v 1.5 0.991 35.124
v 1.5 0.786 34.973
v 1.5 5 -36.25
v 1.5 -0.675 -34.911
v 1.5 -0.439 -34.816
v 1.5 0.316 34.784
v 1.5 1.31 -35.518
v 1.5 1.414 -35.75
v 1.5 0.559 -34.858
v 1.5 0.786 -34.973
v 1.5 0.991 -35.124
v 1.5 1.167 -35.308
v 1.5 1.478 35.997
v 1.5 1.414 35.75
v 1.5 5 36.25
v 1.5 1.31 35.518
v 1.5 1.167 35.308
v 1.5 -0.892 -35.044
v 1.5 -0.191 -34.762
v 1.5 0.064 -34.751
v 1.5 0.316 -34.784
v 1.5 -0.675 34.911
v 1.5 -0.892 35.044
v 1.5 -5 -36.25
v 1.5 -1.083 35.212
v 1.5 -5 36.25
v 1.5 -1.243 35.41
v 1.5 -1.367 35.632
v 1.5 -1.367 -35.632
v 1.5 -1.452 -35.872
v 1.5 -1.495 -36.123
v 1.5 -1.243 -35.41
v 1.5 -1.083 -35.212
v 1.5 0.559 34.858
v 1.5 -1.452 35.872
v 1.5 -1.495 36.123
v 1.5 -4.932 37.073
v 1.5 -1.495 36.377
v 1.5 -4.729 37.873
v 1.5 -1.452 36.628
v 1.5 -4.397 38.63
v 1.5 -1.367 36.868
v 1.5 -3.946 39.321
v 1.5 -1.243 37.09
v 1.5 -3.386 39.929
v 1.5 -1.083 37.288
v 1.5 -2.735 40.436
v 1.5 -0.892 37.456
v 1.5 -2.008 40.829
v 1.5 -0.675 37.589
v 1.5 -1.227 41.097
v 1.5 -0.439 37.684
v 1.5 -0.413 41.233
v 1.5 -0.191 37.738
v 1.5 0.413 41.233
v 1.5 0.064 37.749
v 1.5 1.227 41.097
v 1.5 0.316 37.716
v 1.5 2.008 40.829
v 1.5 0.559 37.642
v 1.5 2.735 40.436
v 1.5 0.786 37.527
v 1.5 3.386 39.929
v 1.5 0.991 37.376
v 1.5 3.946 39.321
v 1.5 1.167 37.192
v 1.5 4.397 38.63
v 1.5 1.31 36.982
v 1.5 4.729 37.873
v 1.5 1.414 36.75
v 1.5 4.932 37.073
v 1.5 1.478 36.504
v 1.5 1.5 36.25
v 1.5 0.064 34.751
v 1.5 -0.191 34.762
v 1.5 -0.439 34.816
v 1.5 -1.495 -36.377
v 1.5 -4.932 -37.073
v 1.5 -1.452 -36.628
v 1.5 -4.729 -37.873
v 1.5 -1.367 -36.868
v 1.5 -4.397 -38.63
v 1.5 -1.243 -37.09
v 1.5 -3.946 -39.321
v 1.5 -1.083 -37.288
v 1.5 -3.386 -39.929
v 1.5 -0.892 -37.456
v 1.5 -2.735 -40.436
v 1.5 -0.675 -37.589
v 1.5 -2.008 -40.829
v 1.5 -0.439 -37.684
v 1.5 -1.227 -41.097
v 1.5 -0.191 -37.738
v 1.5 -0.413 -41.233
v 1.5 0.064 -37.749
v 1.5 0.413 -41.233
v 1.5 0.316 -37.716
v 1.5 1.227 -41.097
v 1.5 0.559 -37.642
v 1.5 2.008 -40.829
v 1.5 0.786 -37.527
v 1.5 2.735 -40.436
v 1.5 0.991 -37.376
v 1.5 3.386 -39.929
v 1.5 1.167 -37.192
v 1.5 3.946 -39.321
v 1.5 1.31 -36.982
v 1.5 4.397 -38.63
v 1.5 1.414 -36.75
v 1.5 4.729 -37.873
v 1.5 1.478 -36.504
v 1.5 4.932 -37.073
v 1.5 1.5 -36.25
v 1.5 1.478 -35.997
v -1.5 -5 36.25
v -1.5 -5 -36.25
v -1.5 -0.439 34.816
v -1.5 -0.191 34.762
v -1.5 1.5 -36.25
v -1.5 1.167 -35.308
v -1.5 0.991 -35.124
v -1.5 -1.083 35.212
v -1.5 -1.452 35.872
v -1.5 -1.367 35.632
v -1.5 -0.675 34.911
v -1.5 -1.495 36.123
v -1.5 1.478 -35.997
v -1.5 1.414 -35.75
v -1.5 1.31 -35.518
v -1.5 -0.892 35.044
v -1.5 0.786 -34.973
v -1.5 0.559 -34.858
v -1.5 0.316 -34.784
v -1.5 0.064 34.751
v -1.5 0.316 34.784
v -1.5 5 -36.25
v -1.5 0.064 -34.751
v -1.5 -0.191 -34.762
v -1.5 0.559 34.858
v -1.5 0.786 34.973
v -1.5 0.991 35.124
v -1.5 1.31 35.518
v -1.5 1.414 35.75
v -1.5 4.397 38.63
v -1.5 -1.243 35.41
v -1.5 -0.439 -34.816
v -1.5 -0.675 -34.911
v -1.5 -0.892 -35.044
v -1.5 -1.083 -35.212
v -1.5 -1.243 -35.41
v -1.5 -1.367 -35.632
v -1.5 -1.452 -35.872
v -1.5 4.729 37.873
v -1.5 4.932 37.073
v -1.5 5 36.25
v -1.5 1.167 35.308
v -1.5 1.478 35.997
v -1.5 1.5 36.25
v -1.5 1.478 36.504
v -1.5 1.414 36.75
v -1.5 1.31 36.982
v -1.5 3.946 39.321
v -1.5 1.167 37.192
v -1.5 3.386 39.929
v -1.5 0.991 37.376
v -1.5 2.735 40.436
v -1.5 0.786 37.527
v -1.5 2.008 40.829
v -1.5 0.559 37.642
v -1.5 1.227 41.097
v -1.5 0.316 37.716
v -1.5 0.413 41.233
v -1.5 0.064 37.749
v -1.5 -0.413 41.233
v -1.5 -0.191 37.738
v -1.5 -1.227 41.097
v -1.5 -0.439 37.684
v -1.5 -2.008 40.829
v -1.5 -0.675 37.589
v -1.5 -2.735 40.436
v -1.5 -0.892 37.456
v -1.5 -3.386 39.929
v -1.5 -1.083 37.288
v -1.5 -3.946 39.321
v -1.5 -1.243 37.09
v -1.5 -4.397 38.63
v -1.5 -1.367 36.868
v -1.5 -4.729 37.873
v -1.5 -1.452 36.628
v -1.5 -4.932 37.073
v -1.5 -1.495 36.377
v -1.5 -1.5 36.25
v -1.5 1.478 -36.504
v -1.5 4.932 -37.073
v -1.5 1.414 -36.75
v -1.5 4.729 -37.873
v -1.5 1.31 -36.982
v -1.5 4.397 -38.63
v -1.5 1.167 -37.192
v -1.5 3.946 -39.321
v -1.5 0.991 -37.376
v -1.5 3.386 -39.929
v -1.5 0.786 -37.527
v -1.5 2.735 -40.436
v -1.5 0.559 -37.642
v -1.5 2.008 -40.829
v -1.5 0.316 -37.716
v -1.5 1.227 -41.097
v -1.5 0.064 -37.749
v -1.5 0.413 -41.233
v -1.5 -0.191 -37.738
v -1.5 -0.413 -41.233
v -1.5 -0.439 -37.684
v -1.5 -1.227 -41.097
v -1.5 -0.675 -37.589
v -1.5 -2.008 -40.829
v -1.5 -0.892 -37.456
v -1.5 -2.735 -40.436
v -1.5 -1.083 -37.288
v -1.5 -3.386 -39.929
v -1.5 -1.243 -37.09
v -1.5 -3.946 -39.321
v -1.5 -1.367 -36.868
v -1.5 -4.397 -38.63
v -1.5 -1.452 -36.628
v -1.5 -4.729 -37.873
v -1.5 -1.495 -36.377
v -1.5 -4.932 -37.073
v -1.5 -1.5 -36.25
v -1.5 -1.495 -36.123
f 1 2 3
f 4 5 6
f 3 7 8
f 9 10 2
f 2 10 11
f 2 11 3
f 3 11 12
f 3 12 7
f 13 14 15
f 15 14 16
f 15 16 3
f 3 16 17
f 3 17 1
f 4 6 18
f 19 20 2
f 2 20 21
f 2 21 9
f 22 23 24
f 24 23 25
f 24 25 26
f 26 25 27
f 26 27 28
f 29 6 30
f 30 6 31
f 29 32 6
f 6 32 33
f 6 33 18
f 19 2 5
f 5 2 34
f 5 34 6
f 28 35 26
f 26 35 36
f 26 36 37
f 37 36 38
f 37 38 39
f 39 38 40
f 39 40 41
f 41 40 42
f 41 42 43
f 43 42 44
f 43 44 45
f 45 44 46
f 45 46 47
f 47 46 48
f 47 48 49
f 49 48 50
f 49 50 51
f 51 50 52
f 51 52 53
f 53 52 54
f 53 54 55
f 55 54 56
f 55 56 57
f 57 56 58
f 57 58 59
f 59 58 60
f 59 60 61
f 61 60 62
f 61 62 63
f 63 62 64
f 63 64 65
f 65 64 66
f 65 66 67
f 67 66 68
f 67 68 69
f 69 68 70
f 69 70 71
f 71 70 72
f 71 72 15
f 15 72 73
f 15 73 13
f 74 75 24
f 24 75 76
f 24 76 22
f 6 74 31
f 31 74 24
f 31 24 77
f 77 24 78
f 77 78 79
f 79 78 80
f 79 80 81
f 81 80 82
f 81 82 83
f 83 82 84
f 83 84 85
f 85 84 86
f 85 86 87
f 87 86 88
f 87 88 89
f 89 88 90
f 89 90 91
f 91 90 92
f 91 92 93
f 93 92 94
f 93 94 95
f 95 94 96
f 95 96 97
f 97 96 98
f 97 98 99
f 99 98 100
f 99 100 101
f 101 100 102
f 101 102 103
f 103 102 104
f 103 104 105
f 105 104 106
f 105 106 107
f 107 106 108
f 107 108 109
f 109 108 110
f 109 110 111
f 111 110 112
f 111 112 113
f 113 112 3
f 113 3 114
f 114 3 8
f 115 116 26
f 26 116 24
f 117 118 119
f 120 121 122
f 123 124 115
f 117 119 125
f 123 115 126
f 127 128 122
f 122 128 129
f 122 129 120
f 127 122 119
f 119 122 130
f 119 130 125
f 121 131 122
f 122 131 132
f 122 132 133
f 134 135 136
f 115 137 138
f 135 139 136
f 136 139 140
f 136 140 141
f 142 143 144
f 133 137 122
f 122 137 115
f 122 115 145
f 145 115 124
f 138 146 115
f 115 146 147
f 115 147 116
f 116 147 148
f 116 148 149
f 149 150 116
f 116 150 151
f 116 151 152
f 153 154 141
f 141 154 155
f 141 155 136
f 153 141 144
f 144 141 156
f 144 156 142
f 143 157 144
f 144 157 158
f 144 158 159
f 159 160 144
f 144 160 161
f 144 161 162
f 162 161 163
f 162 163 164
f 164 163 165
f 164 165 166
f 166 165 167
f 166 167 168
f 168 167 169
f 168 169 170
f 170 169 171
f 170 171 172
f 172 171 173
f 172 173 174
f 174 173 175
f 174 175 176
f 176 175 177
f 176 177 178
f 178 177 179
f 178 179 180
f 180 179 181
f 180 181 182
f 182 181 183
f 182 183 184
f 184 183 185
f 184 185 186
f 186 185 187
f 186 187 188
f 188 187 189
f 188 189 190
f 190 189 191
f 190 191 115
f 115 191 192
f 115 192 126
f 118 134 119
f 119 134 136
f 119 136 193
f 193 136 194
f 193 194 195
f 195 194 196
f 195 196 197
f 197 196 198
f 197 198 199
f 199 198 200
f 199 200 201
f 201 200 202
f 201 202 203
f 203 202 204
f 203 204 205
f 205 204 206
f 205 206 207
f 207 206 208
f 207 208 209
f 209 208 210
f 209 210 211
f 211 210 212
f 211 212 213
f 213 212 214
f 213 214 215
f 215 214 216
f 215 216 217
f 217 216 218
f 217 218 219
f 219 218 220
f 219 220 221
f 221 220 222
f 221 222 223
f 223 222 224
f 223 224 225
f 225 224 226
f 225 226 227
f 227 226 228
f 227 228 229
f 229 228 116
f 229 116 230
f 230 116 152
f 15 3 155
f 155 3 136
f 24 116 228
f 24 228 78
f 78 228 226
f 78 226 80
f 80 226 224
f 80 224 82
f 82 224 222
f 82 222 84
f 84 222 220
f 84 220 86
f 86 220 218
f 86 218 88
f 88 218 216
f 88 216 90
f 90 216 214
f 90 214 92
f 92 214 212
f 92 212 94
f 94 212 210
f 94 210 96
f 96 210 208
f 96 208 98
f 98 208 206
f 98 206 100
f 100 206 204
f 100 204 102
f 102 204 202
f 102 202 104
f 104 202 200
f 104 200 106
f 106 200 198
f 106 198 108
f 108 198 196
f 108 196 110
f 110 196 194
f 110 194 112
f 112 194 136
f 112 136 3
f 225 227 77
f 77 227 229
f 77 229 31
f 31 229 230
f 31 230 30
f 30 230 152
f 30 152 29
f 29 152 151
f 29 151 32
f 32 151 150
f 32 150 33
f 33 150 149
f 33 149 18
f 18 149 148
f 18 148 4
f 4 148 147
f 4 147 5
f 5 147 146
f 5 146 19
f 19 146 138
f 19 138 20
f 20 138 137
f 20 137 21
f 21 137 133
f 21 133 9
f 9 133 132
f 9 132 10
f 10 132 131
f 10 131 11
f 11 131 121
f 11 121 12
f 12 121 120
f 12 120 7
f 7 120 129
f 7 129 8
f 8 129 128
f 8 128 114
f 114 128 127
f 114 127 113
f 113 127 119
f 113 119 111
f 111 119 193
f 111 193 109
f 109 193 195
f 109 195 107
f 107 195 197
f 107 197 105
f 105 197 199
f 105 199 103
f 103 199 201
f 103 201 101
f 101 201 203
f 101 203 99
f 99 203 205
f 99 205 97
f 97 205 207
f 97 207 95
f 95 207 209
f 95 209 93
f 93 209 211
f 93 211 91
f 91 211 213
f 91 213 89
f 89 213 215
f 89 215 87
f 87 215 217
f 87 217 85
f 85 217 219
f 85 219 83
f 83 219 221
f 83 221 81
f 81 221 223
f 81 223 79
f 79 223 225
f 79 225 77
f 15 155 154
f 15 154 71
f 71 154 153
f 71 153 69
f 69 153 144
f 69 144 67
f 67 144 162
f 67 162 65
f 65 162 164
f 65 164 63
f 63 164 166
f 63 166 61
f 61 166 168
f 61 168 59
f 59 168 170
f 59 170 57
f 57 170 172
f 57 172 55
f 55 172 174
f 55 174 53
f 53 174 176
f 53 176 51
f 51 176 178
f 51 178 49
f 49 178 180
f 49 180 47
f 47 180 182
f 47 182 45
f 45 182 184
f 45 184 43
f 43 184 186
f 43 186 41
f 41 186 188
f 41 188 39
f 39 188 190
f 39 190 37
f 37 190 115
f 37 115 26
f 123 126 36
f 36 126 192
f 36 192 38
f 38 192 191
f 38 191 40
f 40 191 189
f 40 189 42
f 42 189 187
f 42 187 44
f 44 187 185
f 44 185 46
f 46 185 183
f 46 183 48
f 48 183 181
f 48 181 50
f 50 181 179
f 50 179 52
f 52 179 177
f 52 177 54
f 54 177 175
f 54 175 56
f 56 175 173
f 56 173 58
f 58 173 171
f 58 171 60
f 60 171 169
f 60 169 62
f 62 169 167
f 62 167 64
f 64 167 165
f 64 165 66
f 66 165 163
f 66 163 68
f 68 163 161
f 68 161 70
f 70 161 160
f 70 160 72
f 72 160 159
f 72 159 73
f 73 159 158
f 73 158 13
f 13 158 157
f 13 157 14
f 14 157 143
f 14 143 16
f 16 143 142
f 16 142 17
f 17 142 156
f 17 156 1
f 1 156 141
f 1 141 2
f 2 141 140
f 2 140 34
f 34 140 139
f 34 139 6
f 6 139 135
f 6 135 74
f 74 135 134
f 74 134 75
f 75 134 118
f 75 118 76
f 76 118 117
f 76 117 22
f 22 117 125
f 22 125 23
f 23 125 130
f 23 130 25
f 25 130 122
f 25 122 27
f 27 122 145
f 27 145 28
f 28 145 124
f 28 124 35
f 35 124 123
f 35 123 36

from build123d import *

# Parameters (mm, degrees)
BOSS_EXTRUDE1_DEPTH      = 36.25
BOSS_EXTRUDE1_DEPTH_BACK = 36.25
SKETCH2_W                = 3
SKETCH2_H                = 10
SKETCH3_W                = 3
SKETCH3_H                = 5
SKETCH4_R                = 1.5
CUT_EXTRUDE1_DEPTH       = 3


with BuildPart() as part:
    # Sketch2 → Boss-Extrude1 (new, two sides: drawn at the far end of the back side and taken through both)
    with BuildSketch(Plane.XY.offset(-BOSS_EXTRUDE1_DEPTH_BACK)):
        Rectangle(SKETCH2_W, SKETCH2_H)
    extrude(amount=BOSS_EXTRUDE1_DEPTH + BOSS_EXTRUDE1_DEPTH_BACK)

    # Sketch3 → Revolve1 (revolve)
    with BuildSketch(Plane(origin=(0, 0, -36.25), x_dir=(-1, 0, 0), z_dir=(0, 0, -1))):
        with Locations((0, -2.5)):
            Rectangle(SKETCH3_W, SKETCH3_H)
    revolve1 = revolve(axis=Axis((-1.5, 0, -36.25), (1, 0, 0)))

    # Sketch4 → Cut-Extrude1 (cut)
    with BuildSketch(Plane(origin=(1.5, 0, 0), x_dir=(0, 0, -1), z_dir=(1, 0, 0))):
        with Locations(Location((36.25, 0, 0), (0, 0, 90))):
            Circle(SKETCH4_R)
    cut_extrude1 = extrude(amount=-CUT_EXTRUDE1_DEPTH, mode=Mode.SUBTRACT)

    # Mirror1: Revolve1, Cut-Extrude1 across plane
    add(revolve1.mirror(Plane.XY))
    add(cut_extrude1.mirror(Plane.XY), mode=Mode.SUBTRACT)


solid = part.part
